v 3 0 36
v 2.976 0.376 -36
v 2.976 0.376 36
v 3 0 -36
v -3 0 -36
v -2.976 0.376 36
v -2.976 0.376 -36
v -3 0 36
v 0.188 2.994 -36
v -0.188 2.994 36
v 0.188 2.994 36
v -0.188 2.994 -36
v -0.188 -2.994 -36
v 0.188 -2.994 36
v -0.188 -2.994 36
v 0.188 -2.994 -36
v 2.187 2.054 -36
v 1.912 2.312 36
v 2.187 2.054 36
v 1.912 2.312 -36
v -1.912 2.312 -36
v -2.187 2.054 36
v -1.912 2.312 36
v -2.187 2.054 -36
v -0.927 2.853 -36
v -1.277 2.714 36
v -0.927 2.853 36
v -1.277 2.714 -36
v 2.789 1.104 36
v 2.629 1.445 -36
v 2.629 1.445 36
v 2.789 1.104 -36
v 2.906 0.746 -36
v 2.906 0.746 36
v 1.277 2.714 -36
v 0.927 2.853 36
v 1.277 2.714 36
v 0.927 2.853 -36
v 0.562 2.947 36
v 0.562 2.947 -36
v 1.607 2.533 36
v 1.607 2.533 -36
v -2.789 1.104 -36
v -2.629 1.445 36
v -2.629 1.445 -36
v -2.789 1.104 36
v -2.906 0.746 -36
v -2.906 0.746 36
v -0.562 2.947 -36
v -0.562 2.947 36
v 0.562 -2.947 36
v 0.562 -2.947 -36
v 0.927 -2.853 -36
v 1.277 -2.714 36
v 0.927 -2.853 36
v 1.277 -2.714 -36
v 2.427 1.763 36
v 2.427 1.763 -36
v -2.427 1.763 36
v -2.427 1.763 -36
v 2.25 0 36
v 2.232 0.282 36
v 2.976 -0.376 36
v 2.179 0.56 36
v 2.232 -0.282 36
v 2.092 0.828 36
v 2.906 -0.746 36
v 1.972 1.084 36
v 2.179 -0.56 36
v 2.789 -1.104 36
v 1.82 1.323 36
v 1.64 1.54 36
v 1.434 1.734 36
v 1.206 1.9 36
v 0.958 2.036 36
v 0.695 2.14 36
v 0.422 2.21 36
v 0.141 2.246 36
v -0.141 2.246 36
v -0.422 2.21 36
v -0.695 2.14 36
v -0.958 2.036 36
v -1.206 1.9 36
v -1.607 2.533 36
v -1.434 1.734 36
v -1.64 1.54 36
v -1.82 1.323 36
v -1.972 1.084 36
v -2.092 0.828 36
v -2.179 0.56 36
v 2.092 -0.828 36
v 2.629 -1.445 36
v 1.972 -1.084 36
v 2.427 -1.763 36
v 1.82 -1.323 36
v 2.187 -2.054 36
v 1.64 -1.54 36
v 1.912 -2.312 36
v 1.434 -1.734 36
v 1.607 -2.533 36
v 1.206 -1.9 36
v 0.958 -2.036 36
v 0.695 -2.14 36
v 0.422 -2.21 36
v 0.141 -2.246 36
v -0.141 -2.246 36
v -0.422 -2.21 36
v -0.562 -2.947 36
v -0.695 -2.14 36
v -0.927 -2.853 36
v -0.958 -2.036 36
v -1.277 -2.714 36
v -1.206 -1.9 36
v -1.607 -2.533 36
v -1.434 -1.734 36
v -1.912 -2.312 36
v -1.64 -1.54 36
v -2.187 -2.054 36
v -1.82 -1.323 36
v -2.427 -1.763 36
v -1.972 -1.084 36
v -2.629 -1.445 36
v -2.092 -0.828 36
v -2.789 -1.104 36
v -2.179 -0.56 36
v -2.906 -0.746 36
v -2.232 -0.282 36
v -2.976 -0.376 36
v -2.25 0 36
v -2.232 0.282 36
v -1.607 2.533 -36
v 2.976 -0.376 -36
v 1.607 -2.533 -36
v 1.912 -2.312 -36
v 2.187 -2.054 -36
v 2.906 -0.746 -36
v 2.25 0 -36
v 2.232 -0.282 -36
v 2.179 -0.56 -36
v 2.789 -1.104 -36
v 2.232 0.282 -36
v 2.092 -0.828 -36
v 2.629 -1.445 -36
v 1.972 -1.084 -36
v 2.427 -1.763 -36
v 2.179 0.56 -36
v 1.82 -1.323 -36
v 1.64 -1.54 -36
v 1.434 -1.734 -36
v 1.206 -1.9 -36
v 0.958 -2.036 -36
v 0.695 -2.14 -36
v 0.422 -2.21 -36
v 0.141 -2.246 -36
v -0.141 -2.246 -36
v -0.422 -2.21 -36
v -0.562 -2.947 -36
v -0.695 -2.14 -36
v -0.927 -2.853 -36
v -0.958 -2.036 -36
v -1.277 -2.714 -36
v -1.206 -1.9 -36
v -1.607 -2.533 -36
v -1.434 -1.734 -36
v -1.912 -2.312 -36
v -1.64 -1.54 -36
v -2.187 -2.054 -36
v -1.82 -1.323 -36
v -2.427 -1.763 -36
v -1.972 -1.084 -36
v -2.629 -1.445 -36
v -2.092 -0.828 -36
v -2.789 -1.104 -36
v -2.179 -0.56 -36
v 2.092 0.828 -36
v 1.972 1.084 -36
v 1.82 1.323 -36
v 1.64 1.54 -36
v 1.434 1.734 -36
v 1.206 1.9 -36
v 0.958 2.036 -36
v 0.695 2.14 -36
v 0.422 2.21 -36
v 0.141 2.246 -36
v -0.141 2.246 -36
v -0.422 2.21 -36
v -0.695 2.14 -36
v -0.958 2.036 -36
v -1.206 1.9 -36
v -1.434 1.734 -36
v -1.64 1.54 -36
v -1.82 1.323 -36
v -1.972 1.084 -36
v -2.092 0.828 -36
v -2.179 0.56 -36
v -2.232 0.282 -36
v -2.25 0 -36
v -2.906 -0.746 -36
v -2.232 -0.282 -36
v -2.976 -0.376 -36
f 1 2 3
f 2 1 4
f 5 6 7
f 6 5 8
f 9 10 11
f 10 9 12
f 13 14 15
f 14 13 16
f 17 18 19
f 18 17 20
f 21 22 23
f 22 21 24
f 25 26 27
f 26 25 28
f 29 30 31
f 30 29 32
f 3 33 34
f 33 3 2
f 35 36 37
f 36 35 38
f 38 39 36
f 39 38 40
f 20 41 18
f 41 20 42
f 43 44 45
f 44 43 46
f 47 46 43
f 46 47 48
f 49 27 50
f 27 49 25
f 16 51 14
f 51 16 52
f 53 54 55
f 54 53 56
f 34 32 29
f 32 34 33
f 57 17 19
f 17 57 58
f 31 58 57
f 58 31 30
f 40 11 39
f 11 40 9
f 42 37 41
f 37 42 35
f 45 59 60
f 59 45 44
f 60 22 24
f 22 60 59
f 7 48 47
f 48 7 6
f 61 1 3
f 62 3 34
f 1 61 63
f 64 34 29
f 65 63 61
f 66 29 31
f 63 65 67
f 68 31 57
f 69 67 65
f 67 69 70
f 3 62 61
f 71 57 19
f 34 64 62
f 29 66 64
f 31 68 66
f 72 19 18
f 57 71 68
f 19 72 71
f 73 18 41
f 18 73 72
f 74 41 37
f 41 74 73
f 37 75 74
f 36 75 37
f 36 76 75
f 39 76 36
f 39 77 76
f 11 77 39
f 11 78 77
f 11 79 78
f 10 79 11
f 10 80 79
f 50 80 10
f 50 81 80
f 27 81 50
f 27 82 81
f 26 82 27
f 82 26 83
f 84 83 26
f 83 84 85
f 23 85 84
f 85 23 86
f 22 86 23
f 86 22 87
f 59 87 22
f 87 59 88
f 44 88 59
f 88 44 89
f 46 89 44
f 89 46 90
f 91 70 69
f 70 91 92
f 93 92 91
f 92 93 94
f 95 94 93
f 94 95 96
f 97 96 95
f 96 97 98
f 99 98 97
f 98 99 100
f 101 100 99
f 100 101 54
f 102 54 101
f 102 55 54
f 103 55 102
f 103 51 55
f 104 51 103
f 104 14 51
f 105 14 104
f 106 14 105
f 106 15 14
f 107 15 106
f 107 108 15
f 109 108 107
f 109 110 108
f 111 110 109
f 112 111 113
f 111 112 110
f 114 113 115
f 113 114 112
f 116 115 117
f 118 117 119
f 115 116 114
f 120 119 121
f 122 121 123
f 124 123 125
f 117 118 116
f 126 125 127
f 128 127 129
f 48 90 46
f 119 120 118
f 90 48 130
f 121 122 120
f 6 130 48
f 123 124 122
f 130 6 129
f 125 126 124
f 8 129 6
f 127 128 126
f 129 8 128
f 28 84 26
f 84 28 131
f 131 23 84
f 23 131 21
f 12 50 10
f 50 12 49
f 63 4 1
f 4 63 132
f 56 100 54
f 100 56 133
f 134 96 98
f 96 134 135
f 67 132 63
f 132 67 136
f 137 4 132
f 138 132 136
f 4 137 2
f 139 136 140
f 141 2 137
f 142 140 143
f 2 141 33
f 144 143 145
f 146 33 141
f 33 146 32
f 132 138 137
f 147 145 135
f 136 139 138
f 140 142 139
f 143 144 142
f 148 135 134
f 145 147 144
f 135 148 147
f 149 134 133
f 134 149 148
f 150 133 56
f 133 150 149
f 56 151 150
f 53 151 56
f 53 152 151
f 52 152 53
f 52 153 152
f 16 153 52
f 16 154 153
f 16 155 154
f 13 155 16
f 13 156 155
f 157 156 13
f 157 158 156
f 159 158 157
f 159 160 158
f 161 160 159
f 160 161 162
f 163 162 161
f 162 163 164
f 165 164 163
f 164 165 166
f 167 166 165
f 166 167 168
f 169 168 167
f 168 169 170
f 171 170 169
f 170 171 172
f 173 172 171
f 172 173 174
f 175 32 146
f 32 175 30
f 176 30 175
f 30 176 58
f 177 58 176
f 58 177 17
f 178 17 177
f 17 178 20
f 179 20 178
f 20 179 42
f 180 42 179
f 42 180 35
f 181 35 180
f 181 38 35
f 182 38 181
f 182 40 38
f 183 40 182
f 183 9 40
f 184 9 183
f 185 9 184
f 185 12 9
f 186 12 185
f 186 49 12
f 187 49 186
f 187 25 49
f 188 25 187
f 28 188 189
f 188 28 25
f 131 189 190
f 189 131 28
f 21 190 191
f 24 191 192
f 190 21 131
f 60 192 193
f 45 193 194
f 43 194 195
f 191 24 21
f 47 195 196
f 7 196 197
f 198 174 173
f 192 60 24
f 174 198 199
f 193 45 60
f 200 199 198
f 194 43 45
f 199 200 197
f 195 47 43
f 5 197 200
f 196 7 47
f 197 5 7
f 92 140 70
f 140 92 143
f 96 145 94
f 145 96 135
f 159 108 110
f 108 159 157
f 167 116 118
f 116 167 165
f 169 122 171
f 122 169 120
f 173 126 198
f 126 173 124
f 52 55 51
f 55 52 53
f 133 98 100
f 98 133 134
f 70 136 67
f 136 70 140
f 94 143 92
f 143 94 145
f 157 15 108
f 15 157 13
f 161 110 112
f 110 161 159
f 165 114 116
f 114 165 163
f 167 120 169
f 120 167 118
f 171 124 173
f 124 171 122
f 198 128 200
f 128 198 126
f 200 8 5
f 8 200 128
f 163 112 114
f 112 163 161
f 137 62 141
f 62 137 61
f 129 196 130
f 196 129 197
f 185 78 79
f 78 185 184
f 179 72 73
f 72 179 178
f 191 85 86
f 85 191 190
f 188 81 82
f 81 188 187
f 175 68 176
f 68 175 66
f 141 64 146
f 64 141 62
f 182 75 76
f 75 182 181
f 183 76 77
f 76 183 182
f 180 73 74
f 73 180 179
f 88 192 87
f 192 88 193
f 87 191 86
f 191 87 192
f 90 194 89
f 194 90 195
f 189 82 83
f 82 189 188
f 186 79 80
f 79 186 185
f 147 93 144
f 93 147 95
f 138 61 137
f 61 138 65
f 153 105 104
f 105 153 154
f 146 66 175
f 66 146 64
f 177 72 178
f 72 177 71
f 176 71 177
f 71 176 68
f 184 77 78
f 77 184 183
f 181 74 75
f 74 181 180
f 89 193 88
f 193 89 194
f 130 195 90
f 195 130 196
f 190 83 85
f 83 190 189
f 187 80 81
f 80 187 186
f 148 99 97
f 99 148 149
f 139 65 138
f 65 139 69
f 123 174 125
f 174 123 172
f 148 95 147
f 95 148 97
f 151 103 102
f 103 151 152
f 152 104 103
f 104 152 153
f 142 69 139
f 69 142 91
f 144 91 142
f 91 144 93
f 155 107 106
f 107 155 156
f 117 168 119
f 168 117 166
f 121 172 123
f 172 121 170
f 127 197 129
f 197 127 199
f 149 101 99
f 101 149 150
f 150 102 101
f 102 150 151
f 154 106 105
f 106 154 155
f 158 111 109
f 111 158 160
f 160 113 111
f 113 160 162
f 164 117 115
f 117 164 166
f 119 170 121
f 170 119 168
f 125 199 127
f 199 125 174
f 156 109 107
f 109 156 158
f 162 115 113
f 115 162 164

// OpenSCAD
$fn = 50;


difference() {
	union() {
		translate(v = [0, 0, -36.0000000000]) {
			cylinder(h = 72, r = 3.0000000000);
		}
	}
	union() {
		translate(v = [0, 0, -100.0000000000]) {
			cylinder(h = 200, r = 2.2500000000);
		}
	}
}
